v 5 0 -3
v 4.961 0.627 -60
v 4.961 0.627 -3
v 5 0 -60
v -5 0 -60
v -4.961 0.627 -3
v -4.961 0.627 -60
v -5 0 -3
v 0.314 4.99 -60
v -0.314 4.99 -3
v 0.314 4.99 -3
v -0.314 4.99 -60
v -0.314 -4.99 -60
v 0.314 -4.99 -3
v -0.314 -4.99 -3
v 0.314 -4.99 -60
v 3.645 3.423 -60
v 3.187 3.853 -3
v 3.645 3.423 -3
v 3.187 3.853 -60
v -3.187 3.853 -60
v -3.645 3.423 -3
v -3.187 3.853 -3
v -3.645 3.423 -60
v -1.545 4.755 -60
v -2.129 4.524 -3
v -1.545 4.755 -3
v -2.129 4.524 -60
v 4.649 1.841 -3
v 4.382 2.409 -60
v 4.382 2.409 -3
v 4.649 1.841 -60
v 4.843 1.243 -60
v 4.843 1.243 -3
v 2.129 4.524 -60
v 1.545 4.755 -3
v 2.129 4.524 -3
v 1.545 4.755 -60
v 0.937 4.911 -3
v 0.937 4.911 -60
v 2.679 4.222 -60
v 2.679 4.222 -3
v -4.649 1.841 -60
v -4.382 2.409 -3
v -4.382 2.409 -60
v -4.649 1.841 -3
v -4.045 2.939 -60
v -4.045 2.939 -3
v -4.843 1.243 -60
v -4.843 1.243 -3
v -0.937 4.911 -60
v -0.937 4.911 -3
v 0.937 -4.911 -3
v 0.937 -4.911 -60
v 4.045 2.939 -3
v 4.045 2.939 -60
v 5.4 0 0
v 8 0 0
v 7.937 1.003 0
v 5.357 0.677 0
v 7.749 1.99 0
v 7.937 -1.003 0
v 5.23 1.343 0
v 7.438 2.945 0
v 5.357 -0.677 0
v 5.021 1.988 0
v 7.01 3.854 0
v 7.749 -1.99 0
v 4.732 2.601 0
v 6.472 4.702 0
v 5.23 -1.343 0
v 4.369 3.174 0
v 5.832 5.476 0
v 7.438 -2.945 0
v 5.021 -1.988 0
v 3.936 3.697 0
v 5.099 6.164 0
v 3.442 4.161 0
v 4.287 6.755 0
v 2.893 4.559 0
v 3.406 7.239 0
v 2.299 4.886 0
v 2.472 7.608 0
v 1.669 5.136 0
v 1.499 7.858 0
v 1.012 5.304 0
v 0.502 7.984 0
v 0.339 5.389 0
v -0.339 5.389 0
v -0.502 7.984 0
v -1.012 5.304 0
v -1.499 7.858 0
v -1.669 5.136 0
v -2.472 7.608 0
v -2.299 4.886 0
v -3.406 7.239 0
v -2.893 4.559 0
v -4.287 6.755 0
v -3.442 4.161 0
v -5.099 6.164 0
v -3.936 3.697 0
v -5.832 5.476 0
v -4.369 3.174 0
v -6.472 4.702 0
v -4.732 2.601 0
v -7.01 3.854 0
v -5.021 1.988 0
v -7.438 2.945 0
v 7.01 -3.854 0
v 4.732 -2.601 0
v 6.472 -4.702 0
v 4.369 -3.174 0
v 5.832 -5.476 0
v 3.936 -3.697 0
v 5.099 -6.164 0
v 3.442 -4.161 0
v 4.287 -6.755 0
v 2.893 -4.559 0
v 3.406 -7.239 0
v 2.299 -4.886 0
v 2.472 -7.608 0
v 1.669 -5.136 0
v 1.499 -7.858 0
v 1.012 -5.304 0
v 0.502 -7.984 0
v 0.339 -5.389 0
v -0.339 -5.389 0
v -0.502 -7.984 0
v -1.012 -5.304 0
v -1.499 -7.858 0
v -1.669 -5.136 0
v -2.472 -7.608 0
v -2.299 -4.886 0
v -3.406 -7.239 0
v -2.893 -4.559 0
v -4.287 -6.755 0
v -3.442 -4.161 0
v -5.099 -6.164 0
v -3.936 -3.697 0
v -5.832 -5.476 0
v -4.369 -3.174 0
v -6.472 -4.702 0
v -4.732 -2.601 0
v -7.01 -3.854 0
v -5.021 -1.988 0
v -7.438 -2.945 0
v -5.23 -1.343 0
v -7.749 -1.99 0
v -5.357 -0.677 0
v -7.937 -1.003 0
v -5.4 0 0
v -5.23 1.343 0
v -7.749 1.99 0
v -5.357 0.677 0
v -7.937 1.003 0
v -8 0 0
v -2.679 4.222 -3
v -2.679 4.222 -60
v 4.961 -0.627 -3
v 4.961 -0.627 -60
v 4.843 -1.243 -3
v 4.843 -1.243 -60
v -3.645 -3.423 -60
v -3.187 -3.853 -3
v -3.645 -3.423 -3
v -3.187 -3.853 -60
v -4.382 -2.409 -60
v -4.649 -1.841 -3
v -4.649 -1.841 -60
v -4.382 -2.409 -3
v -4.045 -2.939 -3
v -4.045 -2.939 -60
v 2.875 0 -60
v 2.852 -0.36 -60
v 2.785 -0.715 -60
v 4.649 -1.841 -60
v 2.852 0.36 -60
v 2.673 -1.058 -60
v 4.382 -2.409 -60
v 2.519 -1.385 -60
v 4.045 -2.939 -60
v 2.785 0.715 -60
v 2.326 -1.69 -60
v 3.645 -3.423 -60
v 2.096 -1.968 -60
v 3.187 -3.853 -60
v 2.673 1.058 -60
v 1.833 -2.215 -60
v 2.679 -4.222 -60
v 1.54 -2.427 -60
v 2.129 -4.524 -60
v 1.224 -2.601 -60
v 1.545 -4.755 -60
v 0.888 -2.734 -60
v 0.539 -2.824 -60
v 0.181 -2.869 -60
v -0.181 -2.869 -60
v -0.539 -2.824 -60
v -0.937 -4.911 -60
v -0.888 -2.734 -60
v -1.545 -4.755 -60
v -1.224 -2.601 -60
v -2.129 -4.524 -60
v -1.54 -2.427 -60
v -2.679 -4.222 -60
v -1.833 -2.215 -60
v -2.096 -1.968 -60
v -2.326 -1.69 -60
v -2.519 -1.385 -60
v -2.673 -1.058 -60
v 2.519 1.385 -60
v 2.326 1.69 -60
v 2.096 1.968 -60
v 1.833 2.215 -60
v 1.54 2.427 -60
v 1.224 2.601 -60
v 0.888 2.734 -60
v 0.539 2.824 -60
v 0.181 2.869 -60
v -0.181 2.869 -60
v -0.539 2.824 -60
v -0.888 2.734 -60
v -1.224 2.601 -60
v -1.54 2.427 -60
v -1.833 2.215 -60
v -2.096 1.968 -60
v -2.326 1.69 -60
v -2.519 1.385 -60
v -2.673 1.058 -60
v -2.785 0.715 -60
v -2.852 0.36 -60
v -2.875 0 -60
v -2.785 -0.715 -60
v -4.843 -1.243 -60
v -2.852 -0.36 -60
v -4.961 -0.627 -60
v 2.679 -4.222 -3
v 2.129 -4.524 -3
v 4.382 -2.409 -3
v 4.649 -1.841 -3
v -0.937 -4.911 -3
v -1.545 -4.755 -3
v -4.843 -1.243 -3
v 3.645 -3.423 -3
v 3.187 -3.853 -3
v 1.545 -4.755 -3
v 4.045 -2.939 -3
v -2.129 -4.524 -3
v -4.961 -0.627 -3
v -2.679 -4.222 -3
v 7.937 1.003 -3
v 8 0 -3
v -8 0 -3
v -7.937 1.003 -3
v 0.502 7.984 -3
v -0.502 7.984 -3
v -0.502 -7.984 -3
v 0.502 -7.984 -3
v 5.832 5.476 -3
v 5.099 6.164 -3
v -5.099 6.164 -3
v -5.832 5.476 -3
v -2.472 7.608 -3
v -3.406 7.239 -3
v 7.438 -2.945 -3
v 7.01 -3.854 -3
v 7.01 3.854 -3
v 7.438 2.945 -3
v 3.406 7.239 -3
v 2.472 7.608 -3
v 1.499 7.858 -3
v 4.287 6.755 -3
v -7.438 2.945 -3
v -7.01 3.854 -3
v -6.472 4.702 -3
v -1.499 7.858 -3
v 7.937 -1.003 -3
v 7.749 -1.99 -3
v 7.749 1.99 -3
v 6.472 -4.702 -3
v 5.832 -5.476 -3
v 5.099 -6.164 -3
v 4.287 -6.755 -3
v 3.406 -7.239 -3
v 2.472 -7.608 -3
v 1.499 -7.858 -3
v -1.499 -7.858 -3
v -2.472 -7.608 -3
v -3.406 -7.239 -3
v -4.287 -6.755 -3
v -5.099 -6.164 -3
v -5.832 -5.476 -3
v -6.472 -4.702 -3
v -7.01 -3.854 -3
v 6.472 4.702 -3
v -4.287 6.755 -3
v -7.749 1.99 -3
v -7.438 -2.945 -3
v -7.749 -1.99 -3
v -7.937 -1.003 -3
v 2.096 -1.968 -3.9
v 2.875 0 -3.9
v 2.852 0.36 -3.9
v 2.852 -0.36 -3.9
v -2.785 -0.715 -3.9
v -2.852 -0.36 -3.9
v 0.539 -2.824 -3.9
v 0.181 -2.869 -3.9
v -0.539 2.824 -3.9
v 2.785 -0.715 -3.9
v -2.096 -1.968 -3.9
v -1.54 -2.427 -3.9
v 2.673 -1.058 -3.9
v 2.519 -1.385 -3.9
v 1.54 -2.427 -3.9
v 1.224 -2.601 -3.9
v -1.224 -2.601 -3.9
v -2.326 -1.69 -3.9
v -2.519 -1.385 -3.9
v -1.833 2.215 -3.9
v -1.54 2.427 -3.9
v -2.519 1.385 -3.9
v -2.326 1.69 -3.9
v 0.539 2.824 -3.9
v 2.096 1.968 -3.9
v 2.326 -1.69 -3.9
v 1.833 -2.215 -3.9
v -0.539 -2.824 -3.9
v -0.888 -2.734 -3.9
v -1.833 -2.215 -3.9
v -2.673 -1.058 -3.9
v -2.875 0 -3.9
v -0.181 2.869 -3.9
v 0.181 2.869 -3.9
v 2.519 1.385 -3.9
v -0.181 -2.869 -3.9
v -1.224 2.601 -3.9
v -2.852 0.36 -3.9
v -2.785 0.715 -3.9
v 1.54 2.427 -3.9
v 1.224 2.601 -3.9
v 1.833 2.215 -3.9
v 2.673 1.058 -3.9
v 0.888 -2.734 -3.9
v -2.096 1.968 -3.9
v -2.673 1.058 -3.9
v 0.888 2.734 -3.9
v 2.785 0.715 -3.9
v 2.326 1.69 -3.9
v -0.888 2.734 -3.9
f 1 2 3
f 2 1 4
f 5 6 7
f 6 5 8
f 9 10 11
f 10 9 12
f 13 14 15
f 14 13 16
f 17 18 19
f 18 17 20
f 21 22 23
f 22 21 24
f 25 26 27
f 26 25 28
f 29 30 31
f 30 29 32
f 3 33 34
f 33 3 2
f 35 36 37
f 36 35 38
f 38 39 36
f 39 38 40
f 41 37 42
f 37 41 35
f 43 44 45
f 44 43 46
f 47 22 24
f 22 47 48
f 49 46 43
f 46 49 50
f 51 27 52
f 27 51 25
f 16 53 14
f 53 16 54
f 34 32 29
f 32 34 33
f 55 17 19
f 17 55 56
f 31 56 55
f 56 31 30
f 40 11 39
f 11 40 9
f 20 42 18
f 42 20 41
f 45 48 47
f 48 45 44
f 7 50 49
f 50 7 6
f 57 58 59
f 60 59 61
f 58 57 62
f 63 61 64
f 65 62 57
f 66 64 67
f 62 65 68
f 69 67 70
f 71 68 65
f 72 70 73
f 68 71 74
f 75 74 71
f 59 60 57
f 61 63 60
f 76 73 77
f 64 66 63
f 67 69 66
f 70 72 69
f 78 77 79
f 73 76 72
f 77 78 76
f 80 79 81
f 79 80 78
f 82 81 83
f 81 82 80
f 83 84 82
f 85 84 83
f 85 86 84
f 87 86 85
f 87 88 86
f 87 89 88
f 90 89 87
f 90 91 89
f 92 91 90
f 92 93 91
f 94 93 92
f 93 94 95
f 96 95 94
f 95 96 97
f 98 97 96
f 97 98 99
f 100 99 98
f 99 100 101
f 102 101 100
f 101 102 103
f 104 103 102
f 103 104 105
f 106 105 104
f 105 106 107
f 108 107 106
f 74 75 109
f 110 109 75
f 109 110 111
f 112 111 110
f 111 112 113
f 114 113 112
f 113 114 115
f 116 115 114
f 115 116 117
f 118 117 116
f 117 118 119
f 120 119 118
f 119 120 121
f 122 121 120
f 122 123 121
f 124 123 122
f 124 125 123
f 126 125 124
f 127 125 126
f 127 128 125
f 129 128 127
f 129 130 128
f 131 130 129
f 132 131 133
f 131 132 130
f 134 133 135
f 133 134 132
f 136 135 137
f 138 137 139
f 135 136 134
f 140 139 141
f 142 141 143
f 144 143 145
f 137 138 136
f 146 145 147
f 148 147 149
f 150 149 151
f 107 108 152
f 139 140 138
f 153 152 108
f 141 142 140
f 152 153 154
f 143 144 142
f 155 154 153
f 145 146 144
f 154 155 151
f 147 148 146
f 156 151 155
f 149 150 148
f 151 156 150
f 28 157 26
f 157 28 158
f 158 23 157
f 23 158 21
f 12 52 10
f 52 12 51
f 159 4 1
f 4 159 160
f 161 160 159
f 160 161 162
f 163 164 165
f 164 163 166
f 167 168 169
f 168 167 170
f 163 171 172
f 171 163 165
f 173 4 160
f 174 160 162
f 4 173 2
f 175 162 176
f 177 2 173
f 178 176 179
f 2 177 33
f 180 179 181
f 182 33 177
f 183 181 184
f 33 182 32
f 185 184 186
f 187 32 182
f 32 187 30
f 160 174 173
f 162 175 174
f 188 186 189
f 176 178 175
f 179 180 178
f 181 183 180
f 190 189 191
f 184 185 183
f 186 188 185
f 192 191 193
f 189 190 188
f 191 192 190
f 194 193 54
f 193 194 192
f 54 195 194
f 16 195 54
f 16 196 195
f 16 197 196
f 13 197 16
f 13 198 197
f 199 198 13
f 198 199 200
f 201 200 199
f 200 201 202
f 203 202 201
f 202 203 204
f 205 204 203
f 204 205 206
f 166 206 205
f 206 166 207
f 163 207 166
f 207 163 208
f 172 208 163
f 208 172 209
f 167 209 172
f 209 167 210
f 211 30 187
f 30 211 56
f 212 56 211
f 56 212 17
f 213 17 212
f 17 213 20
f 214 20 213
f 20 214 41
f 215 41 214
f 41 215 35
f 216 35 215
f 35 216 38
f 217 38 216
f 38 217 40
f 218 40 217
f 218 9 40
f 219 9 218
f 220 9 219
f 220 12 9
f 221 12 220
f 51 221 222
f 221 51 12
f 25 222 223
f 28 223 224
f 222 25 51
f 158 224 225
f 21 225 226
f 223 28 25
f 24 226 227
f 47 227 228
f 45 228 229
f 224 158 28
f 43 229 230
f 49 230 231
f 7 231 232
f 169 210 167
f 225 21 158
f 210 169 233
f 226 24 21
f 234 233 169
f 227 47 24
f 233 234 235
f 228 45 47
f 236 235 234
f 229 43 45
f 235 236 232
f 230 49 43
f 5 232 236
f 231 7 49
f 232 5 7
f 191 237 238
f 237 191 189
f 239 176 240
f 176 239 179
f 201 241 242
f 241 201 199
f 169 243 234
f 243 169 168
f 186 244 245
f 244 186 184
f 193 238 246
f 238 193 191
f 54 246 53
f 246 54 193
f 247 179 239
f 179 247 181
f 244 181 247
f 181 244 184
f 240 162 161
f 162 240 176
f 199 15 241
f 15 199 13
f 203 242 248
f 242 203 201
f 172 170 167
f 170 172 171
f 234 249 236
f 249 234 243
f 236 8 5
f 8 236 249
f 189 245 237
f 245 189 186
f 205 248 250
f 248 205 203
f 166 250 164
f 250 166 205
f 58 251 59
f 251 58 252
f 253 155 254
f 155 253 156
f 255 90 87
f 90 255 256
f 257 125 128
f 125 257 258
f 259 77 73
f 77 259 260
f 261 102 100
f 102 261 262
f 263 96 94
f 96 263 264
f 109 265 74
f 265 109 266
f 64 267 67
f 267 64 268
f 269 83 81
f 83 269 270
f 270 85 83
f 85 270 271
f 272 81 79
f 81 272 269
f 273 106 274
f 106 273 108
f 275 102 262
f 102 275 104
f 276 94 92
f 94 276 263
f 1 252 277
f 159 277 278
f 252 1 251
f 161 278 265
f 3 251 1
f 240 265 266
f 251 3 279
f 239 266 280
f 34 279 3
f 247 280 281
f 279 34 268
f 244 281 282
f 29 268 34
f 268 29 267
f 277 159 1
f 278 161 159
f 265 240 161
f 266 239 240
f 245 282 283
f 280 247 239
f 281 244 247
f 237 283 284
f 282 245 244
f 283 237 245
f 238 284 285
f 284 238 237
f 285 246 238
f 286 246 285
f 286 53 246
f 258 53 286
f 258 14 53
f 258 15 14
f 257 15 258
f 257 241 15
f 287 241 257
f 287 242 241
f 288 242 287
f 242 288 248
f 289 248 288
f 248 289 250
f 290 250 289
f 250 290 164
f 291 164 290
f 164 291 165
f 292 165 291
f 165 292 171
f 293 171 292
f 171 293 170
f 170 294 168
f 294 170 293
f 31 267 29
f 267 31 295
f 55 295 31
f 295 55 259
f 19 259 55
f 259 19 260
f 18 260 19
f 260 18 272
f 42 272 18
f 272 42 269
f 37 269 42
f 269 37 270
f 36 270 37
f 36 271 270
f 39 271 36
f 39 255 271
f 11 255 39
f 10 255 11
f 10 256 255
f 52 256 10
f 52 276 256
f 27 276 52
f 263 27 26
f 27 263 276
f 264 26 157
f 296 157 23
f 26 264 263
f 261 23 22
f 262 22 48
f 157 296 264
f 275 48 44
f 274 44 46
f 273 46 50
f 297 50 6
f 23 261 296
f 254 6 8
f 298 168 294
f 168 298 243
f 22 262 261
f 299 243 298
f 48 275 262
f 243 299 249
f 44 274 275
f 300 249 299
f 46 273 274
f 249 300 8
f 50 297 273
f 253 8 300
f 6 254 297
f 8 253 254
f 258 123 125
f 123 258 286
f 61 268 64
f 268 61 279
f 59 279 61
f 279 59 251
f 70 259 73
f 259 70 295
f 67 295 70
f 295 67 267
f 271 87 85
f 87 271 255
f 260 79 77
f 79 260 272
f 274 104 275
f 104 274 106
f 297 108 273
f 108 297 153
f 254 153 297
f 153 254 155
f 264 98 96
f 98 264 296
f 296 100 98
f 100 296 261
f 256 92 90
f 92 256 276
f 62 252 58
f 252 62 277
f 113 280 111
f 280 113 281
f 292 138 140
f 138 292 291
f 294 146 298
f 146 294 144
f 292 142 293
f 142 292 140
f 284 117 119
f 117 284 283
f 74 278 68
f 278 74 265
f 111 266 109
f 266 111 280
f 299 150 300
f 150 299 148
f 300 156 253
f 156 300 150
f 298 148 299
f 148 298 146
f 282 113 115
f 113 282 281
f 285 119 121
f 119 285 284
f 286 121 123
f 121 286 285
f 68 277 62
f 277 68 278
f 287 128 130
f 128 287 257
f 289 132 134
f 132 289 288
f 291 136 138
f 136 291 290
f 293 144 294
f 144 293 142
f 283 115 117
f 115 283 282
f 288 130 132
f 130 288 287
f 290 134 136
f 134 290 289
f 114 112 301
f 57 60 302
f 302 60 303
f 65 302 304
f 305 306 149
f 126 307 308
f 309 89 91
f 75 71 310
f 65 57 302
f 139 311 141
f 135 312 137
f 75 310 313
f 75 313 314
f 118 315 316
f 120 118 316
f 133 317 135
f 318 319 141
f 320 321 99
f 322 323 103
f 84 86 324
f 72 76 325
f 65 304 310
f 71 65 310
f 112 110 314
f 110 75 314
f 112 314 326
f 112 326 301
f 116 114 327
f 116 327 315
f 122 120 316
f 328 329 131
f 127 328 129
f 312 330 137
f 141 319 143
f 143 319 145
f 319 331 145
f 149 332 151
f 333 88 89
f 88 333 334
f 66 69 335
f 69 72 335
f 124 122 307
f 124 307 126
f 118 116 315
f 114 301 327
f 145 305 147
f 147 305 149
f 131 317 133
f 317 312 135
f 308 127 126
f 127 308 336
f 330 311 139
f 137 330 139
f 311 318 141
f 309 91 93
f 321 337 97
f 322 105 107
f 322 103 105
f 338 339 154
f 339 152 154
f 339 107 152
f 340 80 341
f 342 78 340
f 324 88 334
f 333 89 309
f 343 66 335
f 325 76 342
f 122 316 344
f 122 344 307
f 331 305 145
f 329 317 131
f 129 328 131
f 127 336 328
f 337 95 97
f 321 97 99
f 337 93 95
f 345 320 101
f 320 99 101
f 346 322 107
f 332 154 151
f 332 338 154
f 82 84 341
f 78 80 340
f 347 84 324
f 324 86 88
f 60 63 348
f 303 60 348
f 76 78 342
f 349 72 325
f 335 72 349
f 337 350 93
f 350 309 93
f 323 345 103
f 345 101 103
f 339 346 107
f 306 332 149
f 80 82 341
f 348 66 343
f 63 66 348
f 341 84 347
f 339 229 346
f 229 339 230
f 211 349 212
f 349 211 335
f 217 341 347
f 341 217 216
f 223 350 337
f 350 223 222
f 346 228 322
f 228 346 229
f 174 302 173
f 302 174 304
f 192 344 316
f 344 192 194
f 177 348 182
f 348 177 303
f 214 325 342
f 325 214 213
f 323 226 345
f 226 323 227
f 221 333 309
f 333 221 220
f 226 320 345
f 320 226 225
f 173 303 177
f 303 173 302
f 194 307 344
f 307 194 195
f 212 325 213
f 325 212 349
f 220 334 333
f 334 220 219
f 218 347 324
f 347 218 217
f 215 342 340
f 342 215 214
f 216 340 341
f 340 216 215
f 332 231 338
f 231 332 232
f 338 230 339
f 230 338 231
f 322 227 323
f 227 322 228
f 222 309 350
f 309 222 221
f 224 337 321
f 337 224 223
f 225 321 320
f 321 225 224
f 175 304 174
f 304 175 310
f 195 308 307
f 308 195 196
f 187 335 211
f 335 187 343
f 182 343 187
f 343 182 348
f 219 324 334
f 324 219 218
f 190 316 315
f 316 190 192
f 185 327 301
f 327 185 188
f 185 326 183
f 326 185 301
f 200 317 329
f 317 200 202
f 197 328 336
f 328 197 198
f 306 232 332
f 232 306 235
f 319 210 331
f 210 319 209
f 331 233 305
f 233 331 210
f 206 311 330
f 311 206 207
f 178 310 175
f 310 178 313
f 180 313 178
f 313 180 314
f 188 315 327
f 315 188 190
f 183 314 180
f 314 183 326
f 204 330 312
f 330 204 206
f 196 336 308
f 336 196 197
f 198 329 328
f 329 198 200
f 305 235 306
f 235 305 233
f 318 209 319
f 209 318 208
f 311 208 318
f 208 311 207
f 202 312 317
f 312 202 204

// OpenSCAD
$fn = 50;


difference() {
	union() {
		translate(v = [0, 0, -60.0000000000]) {
			cylinder(h = 60, r = 5.0000000000);
		}
		translate(v = [0, 0, -3.0000000000]) {
			cylinder(h = 3, r = 8.0000000000);
		}
	}
	union() {
		translate(v = [0, 0, 0]) {
			rotate(a = [0, 0, 0]) {
				difference() {
					union() {
						#translate(v = [0, 0, -60.0000000000]) {
							cylinder(h = 60, r = 2.6000000000);
						}
						#translate(v = [0, 0, -3.9000000000]) {
							cylinder(h = 3.9000000000, r = 5.0000000000, r1 = 2.8750000000, r2 = 5.4000000000);
						}
						#translate(v = [0, 0, -60.0000000000]) {
							cylinder(h = 60, r = 2.8750000000);
						}
						#translate(v = [0, 0, -60.0000000000]) {
							cylinder(h = 60, r = 2.6000000000);
						}
					}
					union();
				}
			}
		}
	}
}
